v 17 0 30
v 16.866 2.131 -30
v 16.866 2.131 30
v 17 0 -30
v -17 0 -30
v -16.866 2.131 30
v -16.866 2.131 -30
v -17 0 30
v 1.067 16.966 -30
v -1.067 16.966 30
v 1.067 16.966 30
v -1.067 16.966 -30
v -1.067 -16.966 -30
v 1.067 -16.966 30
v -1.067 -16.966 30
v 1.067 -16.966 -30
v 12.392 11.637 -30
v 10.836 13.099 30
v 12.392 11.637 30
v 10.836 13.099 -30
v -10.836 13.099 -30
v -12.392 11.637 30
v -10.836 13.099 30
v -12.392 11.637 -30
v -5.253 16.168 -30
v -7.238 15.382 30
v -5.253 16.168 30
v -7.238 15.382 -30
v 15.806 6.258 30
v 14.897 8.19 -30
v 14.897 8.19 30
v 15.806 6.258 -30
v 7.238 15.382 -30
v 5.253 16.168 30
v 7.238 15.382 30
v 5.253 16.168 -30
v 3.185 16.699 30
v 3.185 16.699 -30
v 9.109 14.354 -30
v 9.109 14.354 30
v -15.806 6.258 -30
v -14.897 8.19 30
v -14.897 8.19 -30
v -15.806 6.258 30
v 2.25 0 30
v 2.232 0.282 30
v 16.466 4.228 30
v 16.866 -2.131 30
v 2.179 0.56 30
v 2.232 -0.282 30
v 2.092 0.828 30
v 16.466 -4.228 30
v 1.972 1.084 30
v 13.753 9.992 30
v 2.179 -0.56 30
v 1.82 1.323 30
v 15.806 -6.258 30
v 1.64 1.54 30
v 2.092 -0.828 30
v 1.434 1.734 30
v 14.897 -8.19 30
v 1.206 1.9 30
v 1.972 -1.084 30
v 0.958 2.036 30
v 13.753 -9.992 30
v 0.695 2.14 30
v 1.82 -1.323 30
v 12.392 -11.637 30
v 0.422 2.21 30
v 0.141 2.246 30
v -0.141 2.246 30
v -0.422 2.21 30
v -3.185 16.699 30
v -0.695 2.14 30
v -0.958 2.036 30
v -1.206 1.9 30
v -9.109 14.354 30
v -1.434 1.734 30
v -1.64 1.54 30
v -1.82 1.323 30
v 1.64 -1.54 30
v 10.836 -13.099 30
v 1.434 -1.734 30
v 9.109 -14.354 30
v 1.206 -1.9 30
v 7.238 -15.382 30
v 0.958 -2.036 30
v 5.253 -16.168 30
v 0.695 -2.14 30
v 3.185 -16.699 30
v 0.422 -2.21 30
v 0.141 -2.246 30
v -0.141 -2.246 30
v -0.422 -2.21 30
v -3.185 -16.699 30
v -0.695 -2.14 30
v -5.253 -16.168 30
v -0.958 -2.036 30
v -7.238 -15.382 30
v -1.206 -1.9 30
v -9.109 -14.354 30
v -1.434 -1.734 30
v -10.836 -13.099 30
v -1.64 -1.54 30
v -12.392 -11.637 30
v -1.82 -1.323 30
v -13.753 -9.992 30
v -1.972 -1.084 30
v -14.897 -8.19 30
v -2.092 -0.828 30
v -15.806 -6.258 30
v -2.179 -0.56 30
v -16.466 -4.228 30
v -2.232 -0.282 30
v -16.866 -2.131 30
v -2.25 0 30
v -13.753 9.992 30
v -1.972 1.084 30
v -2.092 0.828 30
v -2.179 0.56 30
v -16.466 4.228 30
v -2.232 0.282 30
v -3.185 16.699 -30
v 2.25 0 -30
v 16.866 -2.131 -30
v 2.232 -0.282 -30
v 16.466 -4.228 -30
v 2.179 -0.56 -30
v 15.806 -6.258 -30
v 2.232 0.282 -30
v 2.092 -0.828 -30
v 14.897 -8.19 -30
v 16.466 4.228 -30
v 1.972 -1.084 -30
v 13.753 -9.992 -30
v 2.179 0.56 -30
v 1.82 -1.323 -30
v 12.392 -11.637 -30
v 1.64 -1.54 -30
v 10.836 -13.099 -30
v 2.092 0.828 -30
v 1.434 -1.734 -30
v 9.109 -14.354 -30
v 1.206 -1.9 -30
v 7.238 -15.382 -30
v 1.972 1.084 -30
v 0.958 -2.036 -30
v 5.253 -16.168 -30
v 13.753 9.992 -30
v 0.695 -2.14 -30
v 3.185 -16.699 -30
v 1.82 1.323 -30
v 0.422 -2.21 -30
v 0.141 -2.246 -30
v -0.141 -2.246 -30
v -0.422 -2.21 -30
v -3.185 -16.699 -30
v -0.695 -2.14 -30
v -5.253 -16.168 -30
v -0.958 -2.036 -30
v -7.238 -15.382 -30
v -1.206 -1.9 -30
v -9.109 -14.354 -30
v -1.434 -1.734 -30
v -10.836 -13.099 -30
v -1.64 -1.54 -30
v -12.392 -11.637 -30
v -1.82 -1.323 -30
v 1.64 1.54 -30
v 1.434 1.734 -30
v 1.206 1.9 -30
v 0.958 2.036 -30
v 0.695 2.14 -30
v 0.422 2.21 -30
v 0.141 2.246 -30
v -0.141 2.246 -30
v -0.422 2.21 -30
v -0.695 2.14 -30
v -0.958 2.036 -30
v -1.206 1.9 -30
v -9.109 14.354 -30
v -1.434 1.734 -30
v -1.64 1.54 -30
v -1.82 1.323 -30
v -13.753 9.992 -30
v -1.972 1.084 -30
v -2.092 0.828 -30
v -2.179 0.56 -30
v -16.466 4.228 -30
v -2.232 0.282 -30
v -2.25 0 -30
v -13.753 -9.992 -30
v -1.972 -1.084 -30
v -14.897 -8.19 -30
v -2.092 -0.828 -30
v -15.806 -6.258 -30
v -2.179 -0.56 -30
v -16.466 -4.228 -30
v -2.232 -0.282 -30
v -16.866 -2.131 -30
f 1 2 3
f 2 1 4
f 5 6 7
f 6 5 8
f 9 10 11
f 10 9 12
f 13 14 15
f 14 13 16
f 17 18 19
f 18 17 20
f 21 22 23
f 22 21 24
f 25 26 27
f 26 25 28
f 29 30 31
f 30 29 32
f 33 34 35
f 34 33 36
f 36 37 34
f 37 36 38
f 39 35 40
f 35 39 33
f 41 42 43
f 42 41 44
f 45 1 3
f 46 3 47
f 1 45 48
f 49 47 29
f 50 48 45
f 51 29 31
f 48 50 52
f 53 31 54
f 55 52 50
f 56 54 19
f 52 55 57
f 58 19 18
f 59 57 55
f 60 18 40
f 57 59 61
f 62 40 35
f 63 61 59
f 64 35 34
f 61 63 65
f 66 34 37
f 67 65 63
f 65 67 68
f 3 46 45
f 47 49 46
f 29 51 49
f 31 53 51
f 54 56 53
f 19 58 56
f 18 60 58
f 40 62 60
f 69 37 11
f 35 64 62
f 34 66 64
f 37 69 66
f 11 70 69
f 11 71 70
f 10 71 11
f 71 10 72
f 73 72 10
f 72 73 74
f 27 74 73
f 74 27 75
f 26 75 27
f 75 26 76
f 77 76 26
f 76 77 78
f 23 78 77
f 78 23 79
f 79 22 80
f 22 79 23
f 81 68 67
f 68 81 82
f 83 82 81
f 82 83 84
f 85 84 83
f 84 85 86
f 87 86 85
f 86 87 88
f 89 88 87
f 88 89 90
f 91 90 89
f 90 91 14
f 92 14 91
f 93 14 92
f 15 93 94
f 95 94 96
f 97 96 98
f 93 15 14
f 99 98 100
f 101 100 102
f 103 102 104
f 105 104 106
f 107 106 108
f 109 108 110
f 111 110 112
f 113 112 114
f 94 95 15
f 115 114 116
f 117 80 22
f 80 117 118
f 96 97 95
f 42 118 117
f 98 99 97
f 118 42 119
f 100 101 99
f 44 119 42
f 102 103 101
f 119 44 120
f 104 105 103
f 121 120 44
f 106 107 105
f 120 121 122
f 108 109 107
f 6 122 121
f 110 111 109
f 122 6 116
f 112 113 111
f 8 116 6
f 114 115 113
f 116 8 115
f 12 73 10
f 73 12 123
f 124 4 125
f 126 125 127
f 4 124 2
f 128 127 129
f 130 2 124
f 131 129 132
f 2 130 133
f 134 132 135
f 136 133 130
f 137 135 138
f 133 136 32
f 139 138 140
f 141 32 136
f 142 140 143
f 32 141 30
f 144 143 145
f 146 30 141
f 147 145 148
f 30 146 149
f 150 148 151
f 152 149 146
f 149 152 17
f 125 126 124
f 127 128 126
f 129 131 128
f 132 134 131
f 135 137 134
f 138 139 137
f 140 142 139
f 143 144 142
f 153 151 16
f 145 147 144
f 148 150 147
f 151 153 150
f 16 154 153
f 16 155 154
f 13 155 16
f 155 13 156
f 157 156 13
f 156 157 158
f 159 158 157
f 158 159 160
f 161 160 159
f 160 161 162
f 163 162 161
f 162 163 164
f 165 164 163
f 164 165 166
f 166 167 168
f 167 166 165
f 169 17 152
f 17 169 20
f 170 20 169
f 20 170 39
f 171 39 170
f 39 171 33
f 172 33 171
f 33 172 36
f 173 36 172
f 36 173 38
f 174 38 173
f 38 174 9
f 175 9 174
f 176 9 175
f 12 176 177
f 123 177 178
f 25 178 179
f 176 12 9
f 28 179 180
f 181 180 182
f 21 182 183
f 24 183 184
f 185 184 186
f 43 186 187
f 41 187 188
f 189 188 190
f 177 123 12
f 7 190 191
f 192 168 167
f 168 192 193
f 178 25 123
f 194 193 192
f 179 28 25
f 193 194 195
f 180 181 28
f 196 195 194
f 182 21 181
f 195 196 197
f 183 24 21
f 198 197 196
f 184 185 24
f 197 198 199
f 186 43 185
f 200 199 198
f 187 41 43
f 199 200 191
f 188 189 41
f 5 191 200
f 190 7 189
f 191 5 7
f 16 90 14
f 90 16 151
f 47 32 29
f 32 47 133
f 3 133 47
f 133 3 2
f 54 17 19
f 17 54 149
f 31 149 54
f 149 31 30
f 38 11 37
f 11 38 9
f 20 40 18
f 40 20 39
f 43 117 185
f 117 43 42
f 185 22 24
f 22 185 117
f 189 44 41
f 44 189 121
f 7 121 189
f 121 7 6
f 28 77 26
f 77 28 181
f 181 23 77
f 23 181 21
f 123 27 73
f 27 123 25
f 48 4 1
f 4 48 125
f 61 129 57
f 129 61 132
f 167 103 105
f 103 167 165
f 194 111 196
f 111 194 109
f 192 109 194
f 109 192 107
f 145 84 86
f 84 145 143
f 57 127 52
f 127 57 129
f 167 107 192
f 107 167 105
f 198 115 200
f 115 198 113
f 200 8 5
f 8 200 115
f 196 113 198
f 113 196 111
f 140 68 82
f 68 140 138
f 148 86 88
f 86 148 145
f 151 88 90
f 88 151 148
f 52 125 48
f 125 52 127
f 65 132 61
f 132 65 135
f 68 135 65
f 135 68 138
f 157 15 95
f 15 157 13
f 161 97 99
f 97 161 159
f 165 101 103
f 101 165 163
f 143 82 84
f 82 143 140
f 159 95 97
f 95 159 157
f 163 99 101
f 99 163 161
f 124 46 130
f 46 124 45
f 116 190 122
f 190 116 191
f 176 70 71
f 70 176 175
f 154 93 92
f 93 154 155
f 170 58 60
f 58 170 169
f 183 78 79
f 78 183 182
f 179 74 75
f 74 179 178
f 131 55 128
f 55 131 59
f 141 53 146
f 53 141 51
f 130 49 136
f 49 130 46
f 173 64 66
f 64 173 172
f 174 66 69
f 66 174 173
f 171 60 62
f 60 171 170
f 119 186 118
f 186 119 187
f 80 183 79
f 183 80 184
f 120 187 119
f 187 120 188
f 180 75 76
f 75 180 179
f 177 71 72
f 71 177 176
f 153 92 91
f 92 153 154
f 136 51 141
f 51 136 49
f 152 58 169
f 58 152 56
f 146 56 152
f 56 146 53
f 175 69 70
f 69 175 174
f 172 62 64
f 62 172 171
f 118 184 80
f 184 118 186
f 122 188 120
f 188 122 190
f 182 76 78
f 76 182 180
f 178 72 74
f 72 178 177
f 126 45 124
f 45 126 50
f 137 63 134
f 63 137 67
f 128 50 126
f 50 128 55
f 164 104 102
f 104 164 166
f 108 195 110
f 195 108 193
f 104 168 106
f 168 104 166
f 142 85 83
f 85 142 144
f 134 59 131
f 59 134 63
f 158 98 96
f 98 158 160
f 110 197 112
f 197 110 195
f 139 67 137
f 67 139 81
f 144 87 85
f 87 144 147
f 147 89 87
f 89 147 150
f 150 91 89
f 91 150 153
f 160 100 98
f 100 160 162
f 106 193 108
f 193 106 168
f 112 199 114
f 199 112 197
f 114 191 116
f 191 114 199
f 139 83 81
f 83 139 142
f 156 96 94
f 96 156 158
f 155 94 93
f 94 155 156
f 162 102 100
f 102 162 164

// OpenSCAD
$fn = 50;


difference() {
	union() {
		translate(v = [0, 0, -30.0000000000]) {
			cylinder(h = 60, r = 17.0000000000);
		}
	}
	union() {
		translate(v = [0, 0, -100.0000000000]) {
			cylinder(h = 200, r = 2.2500000000);
		}
	}
}
